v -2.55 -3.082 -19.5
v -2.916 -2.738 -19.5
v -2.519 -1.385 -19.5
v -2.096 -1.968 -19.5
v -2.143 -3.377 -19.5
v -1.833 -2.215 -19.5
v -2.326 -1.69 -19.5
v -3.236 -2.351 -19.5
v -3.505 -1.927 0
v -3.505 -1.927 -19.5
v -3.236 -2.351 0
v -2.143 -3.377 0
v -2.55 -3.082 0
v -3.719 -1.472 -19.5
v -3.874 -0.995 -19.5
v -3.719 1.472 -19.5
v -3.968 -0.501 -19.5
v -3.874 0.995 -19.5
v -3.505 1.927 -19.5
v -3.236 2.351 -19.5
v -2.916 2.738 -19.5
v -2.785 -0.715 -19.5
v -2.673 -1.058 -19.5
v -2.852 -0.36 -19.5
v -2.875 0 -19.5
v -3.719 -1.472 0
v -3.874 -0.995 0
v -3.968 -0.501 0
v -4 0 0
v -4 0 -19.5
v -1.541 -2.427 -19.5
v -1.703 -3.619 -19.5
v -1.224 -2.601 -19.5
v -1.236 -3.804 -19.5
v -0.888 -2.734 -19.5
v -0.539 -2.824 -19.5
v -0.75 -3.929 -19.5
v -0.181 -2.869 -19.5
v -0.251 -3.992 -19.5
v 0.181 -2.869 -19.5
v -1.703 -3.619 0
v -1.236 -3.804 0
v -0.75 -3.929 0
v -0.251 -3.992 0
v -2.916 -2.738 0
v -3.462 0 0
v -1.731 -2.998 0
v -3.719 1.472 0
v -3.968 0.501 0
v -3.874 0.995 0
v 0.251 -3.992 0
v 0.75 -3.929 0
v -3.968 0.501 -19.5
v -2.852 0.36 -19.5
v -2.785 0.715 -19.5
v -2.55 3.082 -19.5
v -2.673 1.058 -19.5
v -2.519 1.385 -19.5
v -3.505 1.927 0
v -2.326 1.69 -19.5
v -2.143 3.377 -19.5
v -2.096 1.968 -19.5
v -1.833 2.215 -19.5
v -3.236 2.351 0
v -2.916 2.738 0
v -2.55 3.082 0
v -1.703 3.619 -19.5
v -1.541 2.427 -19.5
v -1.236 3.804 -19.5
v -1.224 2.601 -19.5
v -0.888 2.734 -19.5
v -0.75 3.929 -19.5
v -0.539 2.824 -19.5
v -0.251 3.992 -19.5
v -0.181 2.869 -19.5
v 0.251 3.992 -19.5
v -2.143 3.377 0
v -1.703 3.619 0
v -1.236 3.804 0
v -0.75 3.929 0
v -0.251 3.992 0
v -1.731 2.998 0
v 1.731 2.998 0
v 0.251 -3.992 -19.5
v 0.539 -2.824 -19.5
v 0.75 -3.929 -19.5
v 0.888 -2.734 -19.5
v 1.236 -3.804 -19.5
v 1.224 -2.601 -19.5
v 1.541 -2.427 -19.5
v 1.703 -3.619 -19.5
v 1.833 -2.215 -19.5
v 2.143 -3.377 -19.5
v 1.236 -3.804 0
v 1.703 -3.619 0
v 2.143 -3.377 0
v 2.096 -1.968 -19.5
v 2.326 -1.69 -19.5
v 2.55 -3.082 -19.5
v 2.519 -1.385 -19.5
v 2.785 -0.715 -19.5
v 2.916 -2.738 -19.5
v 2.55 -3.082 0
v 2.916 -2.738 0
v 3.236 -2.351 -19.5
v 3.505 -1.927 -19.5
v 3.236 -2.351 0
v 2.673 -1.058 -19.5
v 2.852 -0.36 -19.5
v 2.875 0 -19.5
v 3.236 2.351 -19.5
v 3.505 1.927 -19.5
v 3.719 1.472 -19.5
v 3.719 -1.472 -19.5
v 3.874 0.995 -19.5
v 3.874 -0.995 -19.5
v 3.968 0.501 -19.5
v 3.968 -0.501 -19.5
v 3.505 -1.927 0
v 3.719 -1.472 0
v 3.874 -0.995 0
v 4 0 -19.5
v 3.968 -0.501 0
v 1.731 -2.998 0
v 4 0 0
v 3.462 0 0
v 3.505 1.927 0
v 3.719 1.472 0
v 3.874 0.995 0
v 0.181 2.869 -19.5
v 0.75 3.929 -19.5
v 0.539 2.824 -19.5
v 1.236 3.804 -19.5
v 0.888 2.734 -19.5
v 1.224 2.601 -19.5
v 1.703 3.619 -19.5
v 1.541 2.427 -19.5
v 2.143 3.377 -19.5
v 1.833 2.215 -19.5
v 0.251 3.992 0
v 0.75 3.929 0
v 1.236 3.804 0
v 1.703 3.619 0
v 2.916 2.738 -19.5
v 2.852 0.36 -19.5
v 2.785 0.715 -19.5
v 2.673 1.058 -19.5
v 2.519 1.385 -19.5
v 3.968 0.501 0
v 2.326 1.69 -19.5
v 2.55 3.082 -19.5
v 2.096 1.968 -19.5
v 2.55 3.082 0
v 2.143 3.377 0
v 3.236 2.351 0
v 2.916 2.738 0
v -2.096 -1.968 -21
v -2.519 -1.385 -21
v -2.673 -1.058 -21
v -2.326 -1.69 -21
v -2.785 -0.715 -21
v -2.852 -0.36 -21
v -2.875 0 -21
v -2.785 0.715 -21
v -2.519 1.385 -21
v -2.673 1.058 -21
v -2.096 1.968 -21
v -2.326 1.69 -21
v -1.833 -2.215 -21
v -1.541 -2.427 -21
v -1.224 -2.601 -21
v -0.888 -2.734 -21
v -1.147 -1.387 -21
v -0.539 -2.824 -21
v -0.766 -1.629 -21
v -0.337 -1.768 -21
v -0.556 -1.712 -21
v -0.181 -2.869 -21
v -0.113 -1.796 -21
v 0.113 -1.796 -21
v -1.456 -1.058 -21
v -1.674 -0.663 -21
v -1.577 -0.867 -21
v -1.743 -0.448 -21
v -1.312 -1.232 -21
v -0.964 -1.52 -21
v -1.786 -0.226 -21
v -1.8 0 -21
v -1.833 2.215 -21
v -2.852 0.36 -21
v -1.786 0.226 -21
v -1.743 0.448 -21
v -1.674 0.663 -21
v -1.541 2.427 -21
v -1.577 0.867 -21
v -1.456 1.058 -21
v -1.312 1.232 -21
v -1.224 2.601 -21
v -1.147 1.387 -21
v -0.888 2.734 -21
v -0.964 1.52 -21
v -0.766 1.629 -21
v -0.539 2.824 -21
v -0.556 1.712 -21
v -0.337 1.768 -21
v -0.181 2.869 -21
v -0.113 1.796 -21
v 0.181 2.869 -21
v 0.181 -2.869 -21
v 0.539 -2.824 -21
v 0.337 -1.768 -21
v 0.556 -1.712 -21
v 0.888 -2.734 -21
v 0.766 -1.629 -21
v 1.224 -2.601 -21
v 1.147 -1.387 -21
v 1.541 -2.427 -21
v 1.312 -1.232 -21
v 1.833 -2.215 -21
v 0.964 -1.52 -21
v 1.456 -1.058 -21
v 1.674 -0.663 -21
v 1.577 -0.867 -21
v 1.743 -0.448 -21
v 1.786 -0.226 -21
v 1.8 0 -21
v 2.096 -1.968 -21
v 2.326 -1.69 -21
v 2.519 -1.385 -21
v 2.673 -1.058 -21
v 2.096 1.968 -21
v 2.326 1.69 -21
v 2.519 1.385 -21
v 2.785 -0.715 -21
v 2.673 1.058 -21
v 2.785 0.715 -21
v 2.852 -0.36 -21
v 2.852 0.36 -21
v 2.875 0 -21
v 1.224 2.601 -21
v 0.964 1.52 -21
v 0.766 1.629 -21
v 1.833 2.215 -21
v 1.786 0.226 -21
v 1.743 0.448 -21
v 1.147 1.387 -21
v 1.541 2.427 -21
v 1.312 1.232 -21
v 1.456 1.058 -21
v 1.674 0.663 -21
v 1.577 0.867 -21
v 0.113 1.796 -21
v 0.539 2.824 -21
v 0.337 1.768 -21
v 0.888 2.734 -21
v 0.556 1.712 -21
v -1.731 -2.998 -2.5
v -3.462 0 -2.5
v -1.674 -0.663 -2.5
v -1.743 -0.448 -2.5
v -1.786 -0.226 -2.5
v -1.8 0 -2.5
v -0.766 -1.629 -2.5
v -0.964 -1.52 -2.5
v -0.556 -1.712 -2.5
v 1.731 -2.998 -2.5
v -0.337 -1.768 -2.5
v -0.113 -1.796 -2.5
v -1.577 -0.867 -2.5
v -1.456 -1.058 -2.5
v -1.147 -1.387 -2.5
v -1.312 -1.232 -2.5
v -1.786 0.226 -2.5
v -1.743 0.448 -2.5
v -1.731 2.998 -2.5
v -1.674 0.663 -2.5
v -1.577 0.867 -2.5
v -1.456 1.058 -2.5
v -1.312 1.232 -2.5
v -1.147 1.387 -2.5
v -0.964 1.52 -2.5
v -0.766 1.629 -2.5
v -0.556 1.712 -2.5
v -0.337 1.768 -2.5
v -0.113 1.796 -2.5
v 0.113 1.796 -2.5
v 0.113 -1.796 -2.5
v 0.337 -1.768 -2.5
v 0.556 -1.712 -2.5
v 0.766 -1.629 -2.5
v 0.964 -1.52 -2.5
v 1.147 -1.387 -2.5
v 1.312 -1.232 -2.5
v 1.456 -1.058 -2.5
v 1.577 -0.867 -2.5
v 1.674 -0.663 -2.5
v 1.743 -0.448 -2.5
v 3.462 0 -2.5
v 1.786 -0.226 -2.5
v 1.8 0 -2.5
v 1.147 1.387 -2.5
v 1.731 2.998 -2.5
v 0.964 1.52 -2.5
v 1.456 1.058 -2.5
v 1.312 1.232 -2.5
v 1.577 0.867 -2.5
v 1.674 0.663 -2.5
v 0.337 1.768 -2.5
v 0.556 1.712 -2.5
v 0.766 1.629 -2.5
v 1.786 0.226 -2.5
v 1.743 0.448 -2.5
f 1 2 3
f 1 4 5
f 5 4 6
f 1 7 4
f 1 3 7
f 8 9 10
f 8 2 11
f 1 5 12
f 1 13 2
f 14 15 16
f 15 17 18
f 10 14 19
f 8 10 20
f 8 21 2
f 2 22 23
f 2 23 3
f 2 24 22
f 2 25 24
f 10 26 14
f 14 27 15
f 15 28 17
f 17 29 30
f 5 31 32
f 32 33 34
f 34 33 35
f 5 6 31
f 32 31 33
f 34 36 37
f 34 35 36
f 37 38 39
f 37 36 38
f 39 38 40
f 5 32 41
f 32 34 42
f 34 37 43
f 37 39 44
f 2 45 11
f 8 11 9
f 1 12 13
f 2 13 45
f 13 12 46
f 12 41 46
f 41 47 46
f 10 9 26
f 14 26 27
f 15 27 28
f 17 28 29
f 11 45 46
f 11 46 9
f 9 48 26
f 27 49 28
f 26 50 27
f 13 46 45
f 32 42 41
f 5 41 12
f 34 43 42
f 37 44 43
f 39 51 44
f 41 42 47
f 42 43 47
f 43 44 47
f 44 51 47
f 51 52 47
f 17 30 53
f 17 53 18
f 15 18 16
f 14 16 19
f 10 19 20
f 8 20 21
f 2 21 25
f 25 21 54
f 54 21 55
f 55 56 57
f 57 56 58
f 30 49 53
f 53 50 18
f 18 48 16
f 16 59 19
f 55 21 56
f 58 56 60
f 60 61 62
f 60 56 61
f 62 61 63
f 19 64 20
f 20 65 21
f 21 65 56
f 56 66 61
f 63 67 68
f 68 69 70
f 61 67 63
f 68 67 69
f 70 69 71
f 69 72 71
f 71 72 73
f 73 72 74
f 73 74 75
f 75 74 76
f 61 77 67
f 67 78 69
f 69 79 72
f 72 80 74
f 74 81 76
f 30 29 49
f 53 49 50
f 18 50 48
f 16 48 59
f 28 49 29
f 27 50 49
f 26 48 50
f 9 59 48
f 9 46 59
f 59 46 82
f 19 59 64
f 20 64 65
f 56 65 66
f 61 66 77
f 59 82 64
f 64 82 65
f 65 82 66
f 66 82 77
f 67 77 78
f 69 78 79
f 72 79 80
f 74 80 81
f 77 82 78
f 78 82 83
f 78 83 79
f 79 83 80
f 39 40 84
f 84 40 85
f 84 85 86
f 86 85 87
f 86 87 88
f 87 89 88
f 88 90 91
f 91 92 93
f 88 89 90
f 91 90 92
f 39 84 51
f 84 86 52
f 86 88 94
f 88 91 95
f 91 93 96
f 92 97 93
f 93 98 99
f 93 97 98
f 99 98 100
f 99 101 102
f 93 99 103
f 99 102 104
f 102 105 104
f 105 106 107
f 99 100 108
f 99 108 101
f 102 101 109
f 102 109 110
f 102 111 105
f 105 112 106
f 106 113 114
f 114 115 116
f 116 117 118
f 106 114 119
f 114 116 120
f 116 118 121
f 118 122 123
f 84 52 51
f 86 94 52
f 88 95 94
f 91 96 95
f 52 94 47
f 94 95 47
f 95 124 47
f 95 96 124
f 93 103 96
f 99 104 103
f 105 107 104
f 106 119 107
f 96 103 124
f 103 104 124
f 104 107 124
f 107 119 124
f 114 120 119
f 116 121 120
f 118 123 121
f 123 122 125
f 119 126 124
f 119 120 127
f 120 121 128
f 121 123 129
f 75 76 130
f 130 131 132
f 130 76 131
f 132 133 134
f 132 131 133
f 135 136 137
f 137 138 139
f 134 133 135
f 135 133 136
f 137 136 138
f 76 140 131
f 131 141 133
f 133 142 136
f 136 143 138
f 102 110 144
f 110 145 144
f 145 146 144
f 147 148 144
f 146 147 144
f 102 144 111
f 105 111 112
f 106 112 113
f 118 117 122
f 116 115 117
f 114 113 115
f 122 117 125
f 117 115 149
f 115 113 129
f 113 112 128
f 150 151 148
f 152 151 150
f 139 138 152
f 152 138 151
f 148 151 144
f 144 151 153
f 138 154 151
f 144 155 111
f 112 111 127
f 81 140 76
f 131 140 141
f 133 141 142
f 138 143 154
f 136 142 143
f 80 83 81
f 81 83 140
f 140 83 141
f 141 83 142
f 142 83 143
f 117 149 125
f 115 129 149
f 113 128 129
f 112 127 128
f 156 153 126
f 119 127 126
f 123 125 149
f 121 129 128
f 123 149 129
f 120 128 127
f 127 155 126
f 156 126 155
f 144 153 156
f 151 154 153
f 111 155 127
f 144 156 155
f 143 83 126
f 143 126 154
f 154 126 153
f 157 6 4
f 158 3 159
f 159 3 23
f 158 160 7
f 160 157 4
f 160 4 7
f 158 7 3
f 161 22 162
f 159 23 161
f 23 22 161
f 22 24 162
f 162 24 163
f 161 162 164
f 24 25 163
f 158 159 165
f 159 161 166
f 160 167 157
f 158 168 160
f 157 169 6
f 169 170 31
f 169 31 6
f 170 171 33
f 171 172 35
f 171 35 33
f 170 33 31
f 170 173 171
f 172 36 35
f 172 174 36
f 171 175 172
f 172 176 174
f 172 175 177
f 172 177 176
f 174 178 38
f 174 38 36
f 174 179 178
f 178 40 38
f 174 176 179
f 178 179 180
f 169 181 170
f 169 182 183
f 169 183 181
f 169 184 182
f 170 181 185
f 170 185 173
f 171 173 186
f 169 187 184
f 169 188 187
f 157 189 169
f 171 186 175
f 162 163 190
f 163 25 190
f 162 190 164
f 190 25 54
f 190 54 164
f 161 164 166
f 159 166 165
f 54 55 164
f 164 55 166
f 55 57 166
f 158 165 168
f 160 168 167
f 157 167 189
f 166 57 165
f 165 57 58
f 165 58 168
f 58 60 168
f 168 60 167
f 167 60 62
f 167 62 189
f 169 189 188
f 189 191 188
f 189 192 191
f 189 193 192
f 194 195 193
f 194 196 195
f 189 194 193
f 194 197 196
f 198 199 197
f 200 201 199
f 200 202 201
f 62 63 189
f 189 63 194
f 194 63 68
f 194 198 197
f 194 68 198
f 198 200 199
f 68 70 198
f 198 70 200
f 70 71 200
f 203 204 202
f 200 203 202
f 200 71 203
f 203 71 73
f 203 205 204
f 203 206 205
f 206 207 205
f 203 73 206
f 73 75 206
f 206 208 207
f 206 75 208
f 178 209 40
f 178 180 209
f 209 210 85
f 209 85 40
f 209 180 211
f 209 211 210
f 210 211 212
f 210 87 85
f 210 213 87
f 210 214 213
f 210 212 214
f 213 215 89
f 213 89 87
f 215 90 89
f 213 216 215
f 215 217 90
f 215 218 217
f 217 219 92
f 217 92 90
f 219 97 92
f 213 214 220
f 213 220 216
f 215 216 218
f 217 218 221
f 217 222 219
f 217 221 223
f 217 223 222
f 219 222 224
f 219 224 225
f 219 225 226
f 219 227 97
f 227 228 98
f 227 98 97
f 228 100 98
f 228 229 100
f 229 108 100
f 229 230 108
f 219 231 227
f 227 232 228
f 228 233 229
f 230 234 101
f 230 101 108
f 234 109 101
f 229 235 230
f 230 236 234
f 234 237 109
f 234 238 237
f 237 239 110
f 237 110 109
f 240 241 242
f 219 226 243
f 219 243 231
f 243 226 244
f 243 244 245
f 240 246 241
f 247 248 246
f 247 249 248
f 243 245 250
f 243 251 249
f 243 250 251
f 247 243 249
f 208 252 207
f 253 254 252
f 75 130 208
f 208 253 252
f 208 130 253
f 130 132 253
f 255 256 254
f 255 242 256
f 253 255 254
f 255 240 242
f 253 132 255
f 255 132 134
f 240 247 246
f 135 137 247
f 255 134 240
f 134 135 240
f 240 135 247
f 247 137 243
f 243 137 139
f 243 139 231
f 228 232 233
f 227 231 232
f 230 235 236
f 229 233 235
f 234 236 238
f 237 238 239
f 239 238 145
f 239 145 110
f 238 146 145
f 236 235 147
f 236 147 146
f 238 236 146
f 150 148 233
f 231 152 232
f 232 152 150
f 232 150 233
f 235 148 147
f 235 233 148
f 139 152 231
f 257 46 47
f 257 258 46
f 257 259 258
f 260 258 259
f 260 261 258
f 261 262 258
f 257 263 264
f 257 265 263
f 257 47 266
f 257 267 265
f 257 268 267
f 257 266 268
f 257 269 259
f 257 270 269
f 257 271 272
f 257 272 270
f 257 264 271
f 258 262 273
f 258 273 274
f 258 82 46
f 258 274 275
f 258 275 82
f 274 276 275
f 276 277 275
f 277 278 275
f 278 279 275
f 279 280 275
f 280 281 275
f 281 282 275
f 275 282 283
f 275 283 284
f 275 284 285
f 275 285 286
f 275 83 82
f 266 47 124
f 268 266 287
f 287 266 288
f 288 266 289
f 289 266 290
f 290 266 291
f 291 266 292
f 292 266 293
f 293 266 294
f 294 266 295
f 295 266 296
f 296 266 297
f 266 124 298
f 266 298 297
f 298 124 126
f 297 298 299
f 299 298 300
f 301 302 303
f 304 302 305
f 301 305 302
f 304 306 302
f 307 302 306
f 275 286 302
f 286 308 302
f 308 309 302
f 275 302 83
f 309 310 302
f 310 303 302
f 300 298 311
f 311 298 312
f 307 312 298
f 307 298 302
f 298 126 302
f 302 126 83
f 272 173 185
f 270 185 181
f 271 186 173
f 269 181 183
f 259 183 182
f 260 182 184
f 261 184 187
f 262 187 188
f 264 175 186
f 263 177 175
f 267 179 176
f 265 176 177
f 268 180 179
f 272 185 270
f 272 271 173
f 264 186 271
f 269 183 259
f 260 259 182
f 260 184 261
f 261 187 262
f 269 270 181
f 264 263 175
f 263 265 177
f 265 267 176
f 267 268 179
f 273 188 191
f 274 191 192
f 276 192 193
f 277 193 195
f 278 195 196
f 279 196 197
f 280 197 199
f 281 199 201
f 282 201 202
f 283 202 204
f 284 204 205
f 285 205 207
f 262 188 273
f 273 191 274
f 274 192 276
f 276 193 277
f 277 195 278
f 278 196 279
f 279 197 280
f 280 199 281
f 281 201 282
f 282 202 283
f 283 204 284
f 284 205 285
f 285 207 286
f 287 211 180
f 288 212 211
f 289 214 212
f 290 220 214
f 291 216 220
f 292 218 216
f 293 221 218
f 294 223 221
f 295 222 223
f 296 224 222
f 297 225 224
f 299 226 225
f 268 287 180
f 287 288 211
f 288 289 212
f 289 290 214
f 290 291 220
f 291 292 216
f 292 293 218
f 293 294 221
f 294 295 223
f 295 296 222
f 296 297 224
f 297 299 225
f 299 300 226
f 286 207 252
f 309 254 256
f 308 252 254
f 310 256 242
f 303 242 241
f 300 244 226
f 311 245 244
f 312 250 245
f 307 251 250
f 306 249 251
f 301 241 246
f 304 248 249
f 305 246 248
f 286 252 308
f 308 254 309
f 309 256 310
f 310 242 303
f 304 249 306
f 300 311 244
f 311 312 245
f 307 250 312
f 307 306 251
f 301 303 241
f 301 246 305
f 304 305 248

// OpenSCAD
$fn = 50;

difference() {
	union() {
		translate(v = [0, 0, -19.5]) {
			cylinder(h = 19.5, r = 4.0);
		}
		#translate(v = [0, 0, -21.0]) {
			cylinder(h = 21, r = 2.875);
		}
	}
	union() {
		translate(v = [0, 0, 0]) {
			rotate(a = [0, 0, 0]) {
				difference() {
					union() {
						translate(v = [0, 0, -2.5]) {
							linear_extrude(height = 2.5) {
								polygon(points = [[3.4619999999999997, 0.0], [1.7310000000000003, 2.9981799479017264], [-1.7309999999999992, 2.9981799479017264], [-3.4619999999999997, 4.2397272186481365e-16], [-1.7310000000000014, -2.998179947901726], [1.7309999999999977, -2.9981799479017277]]);
							}
						}
					}
					union();
				}
			}
		}
		#translate(v = [0, 0, -100.0]) {
			cylinder(h = 200, r = 1.8);
		}
	}
}
